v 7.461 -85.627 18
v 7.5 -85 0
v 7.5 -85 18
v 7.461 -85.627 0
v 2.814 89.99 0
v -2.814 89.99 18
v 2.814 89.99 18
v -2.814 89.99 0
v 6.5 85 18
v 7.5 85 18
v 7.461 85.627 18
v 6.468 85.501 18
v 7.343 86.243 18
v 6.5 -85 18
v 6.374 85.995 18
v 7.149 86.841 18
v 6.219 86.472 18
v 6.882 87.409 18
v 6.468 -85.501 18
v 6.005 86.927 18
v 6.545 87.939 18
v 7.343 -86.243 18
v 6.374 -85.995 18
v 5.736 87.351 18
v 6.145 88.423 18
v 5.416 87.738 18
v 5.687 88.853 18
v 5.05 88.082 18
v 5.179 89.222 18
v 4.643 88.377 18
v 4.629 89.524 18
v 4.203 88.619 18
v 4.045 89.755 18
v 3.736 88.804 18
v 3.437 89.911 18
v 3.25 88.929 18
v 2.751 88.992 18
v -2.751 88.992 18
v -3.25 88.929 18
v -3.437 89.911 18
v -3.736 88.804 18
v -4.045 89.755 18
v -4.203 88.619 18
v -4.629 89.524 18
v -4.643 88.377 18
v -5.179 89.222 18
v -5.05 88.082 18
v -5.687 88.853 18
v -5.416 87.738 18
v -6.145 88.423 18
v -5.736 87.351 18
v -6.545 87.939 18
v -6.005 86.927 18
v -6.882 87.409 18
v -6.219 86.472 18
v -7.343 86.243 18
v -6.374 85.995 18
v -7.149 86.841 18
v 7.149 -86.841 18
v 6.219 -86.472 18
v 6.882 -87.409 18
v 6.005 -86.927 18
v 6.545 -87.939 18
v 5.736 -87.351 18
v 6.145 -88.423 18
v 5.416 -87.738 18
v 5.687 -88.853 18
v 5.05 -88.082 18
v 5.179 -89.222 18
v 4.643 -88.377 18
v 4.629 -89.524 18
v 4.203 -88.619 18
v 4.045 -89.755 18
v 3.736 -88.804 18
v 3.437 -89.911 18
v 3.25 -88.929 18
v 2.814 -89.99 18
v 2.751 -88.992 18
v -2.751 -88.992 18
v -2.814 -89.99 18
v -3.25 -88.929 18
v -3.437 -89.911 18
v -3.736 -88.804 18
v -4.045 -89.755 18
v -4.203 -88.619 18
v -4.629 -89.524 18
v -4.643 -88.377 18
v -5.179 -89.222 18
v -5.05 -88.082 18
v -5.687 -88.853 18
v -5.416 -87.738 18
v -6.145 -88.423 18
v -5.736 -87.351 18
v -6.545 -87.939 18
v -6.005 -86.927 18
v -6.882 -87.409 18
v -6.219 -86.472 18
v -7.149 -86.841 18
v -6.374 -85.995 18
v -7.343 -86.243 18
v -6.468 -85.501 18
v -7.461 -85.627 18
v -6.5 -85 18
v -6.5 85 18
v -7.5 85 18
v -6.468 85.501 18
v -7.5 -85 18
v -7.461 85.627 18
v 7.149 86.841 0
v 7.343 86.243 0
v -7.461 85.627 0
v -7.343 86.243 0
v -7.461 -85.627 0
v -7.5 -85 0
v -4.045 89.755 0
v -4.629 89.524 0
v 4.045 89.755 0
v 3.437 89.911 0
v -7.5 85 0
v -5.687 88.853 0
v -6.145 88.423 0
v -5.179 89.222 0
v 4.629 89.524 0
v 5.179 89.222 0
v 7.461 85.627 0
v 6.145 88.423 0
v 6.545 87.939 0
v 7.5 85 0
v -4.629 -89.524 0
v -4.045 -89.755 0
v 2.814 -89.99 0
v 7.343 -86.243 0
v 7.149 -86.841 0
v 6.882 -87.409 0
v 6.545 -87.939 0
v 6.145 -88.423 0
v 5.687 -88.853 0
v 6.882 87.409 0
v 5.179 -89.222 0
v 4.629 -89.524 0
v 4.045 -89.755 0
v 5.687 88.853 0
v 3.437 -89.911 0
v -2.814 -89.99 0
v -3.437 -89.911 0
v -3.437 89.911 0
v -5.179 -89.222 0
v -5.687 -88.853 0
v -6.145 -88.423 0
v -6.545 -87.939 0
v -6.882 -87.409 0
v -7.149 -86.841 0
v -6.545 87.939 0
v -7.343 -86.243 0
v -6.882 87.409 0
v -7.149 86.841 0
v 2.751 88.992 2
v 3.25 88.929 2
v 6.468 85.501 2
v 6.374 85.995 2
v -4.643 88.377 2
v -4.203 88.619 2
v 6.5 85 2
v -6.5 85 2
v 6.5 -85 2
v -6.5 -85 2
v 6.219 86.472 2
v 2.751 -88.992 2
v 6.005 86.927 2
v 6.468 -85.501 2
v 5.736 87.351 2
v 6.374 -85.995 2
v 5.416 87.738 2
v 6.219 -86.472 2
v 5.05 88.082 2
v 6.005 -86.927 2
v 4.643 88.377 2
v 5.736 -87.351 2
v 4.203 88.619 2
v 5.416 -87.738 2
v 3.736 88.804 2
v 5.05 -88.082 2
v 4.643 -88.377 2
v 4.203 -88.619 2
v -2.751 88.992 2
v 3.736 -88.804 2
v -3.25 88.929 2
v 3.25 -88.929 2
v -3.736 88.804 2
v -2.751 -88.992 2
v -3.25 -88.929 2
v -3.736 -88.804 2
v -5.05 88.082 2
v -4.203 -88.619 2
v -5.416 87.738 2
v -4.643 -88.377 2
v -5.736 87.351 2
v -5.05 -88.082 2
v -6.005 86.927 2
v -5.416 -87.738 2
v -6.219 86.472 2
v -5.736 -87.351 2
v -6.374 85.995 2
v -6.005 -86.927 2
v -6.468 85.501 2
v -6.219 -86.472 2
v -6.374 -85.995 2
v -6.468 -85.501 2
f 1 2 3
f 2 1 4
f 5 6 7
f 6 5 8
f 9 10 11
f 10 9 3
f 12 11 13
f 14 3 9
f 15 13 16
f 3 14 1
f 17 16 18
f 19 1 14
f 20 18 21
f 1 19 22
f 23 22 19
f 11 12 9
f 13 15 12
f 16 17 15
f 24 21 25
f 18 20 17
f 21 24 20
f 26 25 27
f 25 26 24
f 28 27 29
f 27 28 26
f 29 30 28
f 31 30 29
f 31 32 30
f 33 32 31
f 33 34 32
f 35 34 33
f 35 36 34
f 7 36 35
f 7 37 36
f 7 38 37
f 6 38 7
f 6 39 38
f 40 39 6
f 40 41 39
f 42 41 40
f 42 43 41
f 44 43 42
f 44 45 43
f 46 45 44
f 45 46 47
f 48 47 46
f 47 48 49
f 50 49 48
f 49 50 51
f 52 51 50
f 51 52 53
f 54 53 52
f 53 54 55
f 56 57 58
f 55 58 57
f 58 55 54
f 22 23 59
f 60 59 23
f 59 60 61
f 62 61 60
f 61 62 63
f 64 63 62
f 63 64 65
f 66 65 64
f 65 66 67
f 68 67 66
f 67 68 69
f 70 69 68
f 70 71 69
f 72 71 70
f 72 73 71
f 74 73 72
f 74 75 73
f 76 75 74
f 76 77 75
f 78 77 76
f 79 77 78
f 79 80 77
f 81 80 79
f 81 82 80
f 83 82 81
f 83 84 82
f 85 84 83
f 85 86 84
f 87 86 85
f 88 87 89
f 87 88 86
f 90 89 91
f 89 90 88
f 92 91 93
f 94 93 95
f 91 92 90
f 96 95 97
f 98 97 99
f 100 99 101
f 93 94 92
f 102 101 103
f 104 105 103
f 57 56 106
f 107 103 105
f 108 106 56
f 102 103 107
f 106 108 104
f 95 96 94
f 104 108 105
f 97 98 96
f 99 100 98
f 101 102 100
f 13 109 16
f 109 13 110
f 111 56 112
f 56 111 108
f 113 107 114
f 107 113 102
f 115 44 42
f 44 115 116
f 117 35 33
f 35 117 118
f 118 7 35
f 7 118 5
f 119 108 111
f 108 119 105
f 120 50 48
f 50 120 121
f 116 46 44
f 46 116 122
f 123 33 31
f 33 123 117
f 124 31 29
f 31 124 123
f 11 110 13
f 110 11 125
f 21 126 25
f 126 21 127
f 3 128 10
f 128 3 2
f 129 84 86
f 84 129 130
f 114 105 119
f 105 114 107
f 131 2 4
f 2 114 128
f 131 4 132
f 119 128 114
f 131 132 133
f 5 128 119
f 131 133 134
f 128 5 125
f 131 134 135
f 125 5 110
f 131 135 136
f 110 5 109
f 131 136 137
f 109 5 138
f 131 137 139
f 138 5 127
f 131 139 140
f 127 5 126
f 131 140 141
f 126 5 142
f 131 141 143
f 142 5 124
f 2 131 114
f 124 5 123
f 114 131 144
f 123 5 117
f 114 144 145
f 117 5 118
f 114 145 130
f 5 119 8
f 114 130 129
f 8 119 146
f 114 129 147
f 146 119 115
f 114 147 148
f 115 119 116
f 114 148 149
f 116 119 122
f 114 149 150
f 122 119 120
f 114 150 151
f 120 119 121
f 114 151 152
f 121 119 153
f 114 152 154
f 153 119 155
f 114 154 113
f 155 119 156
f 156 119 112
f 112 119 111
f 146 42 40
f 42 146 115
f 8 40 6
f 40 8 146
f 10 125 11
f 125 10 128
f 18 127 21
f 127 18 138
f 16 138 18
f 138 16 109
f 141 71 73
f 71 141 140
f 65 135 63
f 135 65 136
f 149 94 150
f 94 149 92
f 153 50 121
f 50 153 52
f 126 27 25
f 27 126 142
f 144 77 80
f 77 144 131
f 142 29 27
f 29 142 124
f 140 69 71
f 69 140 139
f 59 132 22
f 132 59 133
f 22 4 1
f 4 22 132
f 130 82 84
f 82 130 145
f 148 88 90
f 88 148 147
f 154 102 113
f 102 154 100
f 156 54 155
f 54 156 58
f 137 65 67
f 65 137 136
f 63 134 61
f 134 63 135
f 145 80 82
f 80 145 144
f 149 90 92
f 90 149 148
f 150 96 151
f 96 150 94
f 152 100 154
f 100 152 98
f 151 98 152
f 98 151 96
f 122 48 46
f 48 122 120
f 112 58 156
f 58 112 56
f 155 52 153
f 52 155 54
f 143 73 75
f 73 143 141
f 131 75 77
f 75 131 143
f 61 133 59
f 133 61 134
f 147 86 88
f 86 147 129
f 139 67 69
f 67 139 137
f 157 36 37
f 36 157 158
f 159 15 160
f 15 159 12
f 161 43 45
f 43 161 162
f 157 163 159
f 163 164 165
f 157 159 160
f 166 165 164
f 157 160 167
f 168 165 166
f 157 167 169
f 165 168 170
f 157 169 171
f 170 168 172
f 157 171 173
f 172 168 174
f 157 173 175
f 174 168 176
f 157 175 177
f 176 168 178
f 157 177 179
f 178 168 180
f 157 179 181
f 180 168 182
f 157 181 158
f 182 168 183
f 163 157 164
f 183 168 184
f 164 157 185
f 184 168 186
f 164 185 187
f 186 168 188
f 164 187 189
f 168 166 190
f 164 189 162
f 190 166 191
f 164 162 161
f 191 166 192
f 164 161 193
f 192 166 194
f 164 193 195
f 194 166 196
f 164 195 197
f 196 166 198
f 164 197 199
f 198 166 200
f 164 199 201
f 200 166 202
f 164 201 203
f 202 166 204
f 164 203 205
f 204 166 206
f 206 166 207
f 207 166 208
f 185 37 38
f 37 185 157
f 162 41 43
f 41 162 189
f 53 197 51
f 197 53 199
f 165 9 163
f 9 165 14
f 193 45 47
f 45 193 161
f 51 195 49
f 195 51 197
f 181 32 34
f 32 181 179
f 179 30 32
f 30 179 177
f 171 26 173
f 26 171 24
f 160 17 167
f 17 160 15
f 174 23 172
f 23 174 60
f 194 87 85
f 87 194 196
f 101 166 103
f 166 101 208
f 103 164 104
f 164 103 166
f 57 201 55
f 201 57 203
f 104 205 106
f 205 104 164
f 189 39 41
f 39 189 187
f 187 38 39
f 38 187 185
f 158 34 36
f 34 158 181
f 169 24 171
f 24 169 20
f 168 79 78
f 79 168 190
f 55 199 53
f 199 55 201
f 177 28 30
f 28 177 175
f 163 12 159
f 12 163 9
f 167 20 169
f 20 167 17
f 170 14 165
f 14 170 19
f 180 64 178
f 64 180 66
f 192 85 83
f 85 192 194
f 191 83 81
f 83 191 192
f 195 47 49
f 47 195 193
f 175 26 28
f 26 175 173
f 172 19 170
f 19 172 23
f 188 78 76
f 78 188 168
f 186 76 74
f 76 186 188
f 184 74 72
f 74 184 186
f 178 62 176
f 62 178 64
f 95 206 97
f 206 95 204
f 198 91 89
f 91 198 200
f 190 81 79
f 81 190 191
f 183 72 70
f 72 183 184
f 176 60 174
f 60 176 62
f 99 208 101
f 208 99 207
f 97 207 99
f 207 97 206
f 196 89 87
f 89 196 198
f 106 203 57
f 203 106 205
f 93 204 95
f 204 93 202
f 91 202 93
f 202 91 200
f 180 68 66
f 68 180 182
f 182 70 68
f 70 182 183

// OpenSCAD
$fn = 50;


difference() {
	union() {
		hull() {
			translate(v = [-2.5000000000, 85.0000000000, 0]) {
				cylinder(h = 18, r = 5);
			}
			translate(v = [2.5000000000, 85.0000000000, 0]) {
				cylinder(h = 18, r = 5);
			}
			translate(v = [-2.5000000000, -85.0000000000, 0]) {
				cylinder(h = 18, r = 5);
			}
			translate(v = [2.5000000000, -85.0000000000, 0]) {
				cylinder(h = 18, r = 5);
			}
		}
	}
	union() {
		translate(v = [0, 0, 2]) {
			hull() {
				translate(v = [-2.5000000000, 85.0000000000, 0]) {
					cylinder(h = 16, r = 4);
				}
				translate(v = [2.5000000000, 85.0000000000, 0]) {
					cylinder(h = 16, r = 4);
				}
				translate(v = [-2.5000000000, -85.0000000000, 0]) {
					cylinder(h = 16, r = 4);
				}
				translate(v = [2.5000000000, -85.0000000000, 0]) {
					cylinder(h = 16, r = 4);
				}
			}
		}
	}
}
